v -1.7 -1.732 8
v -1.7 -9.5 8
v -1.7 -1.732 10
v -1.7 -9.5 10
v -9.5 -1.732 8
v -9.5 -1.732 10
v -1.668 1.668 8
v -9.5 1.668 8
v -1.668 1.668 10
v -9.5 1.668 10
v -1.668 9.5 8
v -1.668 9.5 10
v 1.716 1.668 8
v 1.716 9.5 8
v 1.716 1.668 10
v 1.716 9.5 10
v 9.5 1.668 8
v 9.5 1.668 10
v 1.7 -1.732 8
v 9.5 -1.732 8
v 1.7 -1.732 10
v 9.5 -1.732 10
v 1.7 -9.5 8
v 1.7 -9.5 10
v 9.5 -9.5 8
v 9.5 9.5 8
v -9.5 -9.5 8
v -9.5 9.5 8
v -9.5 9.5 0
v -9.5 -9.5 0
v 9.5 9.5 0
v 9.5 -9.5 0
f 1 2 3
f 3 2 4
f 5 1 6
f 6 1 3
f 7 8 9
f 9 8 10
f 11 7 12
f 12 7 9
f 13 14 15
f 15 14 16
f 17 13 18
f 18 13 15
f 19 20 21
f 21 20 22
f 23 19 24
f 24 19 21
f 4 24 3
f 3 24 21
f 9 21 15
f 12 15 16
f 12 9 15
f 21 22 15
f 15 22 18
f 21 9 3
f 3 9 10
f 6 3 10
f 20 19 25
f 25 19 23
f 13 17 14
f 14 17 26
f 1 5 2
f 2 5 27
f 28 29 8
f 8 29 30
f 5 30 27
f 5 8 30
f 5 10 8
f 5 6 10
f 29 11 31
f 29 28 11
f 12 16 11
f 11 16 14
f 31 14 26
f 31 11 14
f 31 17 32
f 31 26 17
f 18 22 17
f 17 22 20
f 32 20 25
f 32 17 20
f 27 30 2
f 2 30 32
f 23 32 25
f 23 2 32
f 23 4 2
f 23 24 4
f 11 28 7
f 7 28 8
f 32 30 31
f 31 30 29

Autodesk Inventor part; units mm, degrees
ref_plane "YZ Plane" through (0, 0, 0) normal (1, 0, 0) x (0, 1, 0)
ref_plane "XZ Plane" through (0, 0, 0) normal (0, 1, 0) x (-1, 0, 0)
ref_plane "XY Plane" through (0, 0, 0) normal (0, 0, 1) x (1, 0, 0)
sketch "Sketch1" plane through (0, 0, 0) normal (0, 0, 1) x (1, 0, 0)
  line L0 (-9.5, -9.5) -> (9.5, -9.5)
  line L1 (9.5, -9.5) -> (9.5, 9.5)
  line L2 (9.5, 9.5) -> (-9.5, 9.5)
  line L3 (-9.5, 9.5) -> (-9.5, -9.5)
  line L4 (-9.5, -9.5) -> (9.5, 9.5) construction
  line L5 (9.5, -9.5) -> (-9.5, 9.5) construction
  point P0 (0, 0)
  dimension "d0" = 19
  dimension "d1" = 19
extrude "Extrusion1" add sketch "Sketch1" along normal blind 8
sketch "Sketch2" plane through (0, 0, 8) normal (0, 0, 1) x (1, 0, 0)
  line L0 (-9.5, 1.6684) -> (-1.6676, 1.6684)
  line L1 (1.7162, 1.6684) -> (9.5, 1.6684)
  line L2 (-1.7, -9.5) -> (-1.7, -1.7316)
  line L3 (-1.6676, 1.6684) -> (-1.6676, 9.5)
  line L4 (1.7, -9.5) -> (1.7, -1.7316)
  line L5 (1.7162, 1.6684) -> (1.7162, 9.5)
  line L6 (-9.5, -1.7316) -> (-1.7, -1.7316)
  line L7 (1.7, -1.7316) -> (9.5, -1.7316)
  line L8 (-9.5, 1.6684) -> (-9.5, -1.7316)
  line L9 (-1.7, -9.5) -> (1.7, -9.5)
  line L10 (9.5, -1.7316) -> (9.5, 1.6684)
  line L11 (-1.6676, 9.5) -> (1.7162, 9.5)
  point P0 (0, 0)
extrude "Extrusion2" add sketch "Sketch2" along normal blind 2
properties part number "Stop Block"
